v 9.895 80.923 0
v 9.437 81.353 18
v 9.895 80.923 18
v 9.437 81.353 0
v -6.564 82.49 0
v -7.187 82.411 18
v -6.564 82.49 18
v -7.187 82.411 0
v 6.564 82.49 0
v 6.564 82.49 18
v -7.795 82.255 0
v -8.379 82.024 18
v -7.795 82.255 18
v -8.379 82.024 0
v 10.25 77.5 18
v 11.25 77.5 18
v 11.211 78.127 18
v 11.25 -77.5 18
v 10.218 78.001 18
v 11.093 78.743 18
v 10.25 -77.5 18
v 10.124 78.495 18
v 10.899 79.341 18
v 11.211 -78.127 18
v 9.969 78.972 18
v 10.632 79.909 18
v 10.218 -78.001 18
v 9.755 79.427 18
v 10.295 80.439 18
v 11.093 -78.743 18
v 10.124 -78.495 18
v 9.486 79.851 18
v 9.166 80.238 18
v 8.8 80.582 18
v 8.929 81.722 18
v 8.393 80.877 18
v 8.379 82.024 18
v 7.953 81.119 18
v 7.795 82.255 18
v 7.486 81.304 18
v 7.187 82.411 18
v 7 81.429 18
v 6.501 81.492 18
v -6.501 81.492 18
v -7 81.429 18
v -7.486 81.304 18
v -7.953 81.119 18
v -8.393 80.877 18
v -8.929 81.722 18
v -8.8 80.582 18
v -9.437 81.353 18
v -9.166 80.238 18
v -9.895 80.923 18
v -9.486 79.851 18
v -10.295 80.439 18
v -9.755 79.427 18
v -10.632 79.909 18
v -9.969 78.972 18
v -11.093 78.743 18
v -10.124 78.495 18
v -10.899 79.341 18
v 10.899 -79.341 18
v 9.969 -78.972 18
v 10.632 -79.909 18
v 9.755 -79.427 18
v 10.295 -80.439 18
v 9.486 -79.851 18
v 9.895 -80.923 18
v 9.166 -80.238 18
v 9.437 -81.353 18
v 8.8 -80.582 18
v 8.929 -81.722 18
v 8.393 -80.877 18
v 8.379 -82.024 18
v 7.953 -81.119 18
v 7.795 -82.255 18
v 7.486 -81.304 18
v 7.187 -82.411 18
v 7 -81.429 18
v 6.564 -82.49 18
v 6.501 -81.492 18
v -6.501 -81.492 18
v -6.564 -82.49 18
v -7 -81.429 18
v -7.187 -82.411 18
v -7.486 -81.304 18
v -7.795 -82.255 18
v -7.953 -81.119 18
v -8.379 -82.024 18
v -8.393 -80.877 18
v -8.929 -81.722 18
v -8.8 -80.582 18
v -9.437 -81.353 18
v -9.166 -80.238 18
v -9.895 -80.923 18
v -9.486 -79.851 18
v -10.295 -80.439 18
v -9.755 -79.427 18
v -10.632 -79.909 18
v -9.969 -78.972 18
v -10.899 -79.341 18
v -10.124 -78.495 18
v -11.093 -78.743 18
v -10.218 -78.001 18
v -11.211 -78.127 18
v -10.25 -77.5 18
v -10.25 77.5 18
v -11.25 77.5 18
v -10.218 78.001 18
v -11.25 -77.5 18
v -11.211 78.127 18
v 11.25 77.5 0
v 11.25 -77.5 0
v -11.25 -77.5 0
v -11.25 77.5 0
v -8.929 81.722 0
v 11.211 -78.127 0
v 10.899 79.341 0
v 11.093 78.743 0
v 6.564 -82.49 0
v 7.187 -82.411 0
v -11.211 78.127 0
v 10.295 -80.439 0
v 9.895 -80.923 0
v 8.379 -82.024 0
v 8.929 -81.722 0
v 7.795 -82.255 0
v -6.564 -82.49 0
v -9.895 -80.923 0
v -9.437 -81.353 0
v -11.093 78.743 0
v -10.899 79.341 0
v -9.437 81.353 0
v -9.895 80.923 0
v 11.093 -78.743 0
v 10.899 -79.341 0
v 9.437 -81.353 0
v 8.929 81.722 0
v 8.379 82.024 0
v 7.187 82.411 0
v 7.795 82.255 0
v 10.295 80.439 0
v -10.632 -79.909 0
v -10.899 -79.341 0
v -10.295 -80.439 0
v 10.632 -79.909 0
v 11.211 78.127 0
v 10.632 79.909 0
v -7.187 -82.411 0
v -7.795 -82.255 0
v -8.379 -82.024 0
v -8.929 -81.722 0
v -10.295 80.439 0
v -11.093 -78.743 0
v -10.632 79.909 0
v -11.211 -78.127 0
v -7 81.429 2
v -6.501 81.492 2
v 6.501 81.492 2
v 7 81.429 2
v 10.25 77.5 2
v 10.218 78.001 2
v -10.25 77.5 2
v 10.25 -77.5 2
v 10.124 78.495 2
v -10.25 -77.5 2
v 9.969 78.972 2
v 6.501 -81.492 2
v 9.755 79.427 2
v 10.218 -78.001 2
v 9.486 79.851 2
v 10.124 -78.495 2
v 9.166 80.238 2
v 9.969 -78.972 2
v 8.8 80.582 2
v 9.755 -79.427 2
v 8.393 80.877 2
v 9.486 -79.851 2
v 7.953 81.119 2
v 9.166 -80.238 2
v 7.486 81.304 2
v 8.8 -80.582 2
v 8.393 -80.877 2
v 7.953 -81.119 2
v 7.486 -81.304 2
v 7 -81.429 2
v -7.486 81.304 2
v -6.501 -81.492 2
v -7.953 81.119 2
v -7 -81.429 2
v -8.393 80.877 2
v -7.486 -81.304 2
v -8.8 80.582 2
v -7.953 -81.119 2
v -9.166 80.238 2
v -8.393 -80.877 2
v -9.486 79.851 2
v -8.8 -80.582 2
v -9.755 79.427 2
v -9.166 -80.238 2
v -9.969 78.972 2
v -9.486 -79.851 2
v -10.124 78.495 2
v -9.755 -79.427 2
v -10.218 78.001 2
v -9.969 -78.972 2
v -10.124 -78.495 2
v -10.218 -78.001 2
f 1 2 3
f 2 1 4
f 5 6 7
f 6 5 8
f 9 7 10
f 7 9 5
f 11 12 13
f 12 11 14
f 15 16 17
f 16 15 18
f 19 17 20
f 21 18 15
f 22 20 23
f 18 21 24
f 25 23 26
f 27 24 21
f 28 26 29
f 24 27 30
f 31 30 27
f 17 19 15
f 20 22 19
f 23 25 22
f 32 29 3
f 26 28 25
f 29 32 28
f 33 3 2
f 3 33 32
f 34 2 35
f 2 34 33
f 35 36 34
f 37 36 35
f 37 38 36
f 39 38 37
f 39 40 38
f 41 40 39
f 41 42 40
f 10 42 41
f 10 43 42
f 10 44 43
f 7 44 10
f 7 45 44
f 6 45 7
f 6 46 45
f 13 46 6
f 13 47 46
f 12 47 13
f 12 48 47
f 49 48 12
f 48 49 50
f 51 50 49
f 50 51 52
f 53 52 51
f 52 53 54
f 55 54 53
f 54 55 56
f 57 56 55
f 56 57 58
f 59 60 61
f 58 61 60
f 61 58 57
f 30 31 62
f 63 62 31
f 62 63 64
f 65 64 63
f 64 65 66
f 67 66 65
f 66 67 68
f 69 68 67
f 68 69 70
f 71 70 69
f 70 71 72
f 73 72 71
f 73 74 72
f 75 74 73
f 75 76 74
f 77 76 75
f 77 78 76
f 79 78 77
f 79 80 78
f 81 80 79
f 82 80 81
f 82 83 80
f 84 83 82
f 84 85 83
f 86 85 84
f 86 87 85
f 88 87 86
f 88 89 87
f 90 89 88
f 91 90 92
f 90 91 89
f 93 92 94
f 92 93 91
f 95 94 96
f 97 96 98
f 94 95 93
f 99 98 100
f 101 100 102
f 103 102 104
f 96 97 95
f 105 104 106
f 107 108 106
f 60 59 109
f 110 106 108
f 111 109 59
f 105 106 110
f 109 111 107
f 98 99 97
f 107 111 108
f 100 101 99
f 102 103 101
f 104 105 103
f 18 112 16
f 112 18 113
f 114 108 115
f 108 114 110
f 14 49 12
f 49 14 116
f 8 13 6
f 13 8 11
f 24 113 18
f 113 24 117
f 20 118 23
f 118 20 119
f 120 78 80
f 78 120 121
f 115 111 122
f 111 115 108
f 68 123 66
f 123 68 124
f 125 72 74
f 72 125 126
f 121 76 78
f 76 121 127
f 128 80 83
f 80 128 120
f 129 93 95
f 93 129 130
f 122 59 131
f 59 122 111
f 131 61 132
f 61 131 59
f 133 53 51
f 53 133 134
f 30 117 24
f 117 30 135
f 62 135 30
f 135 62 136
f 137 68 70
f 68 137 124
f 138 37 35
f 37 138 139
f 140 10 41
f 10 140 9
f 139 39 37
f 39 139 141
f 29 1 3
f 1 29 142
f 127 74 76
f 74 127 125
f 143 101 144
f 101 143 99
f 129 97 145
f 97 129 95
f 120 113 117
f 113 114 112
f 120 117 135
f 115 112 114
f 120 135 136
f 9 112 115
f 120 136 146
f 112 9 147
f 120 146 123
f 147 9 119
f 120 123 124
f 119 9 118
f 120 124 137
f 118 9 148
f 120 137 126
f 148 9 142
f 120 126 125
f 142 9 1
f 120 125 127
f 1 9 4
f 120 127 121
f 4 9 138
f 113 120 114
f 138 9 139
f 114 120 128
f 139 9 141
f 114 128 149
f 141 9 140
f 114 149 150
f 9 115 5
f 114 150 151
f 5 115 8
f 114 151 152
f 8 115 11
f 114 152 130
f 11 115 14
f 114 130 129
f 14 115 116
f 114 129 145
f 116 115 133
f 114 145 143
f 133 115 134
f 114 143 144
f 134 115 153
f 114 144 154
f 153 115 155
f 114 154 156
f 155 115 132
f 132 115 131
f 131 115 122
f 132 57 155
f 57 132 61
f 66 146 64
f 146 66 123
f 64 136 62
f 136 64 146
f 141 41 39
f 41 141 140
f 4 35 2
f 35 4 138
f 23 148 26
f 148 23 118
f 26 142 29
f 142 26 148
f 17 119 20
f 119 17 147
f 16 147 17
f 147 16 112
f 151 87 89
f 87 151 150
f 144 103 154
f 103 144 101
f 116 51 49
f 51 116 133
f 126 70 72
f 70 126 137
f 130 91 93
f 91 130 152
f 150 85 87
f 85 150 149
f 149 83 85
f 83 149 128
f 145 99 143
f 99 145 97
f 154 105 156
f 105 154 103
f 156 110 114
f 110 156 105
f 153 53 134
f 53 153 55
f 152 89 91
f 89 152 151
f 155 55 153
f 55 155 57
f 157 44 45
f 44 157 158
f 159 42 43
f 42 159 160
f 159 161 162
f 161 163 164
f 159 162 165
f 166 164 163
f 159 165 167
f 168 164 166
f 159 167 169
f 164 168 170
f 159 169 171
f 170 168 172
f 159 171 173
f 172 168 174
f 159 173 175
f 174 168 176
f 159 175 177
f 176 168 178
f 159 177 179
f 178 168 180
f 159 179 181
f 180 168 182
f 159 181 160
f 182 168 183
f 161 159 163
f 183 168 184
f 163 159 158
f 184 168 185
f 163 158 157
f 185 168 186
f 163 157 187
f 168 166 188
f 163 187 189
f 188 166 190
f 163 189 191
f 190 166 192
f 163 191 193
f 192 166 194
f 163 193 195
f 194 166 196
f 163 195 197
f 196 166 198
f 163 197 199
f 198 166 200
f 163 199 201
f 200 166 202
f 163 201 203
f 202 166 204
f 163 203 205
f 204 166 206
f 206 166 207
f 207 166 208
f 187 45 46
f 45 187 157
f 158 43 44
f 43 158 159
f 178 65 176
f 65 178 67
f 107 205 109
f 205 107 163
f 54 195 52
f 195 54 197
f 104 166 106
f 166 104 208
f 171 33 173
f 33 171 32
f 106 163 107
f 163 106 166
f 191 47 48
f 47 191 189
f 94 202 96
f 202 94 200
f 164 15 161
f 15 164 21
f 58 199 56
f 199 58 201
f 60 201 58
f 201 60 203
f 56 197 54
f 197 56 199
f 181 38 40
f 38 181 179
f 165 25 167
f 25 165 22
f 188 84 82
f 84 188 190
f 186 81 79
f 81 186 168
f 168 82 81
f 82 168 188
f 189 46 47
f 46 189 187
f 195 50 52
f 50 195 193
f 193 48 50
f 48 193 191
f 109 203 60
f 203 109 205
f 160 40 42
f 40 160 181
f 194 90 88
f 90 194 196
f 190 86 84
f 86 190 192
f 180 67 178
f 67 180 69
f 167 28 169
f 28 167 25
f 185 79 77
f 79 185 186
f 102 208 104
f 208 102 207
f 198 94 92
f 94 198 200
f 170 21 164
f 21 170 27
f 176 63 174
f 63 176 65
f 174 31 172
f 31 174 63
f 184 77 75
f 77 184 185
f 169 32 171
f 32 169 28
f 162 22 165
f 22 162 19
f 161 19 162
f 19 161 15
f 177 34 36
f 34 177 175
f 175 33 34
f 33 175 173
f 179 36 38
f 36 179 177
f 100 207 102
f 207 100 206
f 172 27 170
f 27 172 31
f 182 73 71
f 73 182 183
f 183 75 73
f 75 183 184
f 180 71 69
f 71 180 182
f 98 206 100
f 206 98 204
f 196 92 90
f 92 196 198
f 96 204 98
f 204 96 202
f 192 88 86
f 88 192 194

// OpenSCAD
$fn = 50;


difference() {
	union() {
		hull() {
			translate(v = [-6.2500000000, 77.5000000000, 0]) {
				cylinder(h = 18, r = 5);
			}
			translate(v = [6.2500000000, 77.5000000000, 0]) {
				cylinder(h = 18, r = 5);
			}
			translate(v = [-6.2500000000, -77.5000000000, 0]) {
				cylinder(h = 18, r = 5);
			}
			translate(v = [6.2500000000, -77.5000000000, 0]) {
				cylinder(h = 18, r = 5);
			}
		}
	}
	union() {
		translate(v = [0, 0, 2]) {
			hull() {
				translate(v = [-6.2500000000, 77.5000000000, 0]) {
					cylinder(h = 16, r = 4);
				}
				translate(v = [6.2500000000, 77.5000000000, 0]) {
					cylinder(h = 16, r = 4);
				}
				translate(v = [-6.2500000000, -77.5000000000, 0]) {
					cylinder(h = 16, r = 4);
				}
				translate(v = [6.2500000000, -77.5000000000, 0]) {
					cylinder(h = 16, r = 4);
				}
			}
		}
	}
}
